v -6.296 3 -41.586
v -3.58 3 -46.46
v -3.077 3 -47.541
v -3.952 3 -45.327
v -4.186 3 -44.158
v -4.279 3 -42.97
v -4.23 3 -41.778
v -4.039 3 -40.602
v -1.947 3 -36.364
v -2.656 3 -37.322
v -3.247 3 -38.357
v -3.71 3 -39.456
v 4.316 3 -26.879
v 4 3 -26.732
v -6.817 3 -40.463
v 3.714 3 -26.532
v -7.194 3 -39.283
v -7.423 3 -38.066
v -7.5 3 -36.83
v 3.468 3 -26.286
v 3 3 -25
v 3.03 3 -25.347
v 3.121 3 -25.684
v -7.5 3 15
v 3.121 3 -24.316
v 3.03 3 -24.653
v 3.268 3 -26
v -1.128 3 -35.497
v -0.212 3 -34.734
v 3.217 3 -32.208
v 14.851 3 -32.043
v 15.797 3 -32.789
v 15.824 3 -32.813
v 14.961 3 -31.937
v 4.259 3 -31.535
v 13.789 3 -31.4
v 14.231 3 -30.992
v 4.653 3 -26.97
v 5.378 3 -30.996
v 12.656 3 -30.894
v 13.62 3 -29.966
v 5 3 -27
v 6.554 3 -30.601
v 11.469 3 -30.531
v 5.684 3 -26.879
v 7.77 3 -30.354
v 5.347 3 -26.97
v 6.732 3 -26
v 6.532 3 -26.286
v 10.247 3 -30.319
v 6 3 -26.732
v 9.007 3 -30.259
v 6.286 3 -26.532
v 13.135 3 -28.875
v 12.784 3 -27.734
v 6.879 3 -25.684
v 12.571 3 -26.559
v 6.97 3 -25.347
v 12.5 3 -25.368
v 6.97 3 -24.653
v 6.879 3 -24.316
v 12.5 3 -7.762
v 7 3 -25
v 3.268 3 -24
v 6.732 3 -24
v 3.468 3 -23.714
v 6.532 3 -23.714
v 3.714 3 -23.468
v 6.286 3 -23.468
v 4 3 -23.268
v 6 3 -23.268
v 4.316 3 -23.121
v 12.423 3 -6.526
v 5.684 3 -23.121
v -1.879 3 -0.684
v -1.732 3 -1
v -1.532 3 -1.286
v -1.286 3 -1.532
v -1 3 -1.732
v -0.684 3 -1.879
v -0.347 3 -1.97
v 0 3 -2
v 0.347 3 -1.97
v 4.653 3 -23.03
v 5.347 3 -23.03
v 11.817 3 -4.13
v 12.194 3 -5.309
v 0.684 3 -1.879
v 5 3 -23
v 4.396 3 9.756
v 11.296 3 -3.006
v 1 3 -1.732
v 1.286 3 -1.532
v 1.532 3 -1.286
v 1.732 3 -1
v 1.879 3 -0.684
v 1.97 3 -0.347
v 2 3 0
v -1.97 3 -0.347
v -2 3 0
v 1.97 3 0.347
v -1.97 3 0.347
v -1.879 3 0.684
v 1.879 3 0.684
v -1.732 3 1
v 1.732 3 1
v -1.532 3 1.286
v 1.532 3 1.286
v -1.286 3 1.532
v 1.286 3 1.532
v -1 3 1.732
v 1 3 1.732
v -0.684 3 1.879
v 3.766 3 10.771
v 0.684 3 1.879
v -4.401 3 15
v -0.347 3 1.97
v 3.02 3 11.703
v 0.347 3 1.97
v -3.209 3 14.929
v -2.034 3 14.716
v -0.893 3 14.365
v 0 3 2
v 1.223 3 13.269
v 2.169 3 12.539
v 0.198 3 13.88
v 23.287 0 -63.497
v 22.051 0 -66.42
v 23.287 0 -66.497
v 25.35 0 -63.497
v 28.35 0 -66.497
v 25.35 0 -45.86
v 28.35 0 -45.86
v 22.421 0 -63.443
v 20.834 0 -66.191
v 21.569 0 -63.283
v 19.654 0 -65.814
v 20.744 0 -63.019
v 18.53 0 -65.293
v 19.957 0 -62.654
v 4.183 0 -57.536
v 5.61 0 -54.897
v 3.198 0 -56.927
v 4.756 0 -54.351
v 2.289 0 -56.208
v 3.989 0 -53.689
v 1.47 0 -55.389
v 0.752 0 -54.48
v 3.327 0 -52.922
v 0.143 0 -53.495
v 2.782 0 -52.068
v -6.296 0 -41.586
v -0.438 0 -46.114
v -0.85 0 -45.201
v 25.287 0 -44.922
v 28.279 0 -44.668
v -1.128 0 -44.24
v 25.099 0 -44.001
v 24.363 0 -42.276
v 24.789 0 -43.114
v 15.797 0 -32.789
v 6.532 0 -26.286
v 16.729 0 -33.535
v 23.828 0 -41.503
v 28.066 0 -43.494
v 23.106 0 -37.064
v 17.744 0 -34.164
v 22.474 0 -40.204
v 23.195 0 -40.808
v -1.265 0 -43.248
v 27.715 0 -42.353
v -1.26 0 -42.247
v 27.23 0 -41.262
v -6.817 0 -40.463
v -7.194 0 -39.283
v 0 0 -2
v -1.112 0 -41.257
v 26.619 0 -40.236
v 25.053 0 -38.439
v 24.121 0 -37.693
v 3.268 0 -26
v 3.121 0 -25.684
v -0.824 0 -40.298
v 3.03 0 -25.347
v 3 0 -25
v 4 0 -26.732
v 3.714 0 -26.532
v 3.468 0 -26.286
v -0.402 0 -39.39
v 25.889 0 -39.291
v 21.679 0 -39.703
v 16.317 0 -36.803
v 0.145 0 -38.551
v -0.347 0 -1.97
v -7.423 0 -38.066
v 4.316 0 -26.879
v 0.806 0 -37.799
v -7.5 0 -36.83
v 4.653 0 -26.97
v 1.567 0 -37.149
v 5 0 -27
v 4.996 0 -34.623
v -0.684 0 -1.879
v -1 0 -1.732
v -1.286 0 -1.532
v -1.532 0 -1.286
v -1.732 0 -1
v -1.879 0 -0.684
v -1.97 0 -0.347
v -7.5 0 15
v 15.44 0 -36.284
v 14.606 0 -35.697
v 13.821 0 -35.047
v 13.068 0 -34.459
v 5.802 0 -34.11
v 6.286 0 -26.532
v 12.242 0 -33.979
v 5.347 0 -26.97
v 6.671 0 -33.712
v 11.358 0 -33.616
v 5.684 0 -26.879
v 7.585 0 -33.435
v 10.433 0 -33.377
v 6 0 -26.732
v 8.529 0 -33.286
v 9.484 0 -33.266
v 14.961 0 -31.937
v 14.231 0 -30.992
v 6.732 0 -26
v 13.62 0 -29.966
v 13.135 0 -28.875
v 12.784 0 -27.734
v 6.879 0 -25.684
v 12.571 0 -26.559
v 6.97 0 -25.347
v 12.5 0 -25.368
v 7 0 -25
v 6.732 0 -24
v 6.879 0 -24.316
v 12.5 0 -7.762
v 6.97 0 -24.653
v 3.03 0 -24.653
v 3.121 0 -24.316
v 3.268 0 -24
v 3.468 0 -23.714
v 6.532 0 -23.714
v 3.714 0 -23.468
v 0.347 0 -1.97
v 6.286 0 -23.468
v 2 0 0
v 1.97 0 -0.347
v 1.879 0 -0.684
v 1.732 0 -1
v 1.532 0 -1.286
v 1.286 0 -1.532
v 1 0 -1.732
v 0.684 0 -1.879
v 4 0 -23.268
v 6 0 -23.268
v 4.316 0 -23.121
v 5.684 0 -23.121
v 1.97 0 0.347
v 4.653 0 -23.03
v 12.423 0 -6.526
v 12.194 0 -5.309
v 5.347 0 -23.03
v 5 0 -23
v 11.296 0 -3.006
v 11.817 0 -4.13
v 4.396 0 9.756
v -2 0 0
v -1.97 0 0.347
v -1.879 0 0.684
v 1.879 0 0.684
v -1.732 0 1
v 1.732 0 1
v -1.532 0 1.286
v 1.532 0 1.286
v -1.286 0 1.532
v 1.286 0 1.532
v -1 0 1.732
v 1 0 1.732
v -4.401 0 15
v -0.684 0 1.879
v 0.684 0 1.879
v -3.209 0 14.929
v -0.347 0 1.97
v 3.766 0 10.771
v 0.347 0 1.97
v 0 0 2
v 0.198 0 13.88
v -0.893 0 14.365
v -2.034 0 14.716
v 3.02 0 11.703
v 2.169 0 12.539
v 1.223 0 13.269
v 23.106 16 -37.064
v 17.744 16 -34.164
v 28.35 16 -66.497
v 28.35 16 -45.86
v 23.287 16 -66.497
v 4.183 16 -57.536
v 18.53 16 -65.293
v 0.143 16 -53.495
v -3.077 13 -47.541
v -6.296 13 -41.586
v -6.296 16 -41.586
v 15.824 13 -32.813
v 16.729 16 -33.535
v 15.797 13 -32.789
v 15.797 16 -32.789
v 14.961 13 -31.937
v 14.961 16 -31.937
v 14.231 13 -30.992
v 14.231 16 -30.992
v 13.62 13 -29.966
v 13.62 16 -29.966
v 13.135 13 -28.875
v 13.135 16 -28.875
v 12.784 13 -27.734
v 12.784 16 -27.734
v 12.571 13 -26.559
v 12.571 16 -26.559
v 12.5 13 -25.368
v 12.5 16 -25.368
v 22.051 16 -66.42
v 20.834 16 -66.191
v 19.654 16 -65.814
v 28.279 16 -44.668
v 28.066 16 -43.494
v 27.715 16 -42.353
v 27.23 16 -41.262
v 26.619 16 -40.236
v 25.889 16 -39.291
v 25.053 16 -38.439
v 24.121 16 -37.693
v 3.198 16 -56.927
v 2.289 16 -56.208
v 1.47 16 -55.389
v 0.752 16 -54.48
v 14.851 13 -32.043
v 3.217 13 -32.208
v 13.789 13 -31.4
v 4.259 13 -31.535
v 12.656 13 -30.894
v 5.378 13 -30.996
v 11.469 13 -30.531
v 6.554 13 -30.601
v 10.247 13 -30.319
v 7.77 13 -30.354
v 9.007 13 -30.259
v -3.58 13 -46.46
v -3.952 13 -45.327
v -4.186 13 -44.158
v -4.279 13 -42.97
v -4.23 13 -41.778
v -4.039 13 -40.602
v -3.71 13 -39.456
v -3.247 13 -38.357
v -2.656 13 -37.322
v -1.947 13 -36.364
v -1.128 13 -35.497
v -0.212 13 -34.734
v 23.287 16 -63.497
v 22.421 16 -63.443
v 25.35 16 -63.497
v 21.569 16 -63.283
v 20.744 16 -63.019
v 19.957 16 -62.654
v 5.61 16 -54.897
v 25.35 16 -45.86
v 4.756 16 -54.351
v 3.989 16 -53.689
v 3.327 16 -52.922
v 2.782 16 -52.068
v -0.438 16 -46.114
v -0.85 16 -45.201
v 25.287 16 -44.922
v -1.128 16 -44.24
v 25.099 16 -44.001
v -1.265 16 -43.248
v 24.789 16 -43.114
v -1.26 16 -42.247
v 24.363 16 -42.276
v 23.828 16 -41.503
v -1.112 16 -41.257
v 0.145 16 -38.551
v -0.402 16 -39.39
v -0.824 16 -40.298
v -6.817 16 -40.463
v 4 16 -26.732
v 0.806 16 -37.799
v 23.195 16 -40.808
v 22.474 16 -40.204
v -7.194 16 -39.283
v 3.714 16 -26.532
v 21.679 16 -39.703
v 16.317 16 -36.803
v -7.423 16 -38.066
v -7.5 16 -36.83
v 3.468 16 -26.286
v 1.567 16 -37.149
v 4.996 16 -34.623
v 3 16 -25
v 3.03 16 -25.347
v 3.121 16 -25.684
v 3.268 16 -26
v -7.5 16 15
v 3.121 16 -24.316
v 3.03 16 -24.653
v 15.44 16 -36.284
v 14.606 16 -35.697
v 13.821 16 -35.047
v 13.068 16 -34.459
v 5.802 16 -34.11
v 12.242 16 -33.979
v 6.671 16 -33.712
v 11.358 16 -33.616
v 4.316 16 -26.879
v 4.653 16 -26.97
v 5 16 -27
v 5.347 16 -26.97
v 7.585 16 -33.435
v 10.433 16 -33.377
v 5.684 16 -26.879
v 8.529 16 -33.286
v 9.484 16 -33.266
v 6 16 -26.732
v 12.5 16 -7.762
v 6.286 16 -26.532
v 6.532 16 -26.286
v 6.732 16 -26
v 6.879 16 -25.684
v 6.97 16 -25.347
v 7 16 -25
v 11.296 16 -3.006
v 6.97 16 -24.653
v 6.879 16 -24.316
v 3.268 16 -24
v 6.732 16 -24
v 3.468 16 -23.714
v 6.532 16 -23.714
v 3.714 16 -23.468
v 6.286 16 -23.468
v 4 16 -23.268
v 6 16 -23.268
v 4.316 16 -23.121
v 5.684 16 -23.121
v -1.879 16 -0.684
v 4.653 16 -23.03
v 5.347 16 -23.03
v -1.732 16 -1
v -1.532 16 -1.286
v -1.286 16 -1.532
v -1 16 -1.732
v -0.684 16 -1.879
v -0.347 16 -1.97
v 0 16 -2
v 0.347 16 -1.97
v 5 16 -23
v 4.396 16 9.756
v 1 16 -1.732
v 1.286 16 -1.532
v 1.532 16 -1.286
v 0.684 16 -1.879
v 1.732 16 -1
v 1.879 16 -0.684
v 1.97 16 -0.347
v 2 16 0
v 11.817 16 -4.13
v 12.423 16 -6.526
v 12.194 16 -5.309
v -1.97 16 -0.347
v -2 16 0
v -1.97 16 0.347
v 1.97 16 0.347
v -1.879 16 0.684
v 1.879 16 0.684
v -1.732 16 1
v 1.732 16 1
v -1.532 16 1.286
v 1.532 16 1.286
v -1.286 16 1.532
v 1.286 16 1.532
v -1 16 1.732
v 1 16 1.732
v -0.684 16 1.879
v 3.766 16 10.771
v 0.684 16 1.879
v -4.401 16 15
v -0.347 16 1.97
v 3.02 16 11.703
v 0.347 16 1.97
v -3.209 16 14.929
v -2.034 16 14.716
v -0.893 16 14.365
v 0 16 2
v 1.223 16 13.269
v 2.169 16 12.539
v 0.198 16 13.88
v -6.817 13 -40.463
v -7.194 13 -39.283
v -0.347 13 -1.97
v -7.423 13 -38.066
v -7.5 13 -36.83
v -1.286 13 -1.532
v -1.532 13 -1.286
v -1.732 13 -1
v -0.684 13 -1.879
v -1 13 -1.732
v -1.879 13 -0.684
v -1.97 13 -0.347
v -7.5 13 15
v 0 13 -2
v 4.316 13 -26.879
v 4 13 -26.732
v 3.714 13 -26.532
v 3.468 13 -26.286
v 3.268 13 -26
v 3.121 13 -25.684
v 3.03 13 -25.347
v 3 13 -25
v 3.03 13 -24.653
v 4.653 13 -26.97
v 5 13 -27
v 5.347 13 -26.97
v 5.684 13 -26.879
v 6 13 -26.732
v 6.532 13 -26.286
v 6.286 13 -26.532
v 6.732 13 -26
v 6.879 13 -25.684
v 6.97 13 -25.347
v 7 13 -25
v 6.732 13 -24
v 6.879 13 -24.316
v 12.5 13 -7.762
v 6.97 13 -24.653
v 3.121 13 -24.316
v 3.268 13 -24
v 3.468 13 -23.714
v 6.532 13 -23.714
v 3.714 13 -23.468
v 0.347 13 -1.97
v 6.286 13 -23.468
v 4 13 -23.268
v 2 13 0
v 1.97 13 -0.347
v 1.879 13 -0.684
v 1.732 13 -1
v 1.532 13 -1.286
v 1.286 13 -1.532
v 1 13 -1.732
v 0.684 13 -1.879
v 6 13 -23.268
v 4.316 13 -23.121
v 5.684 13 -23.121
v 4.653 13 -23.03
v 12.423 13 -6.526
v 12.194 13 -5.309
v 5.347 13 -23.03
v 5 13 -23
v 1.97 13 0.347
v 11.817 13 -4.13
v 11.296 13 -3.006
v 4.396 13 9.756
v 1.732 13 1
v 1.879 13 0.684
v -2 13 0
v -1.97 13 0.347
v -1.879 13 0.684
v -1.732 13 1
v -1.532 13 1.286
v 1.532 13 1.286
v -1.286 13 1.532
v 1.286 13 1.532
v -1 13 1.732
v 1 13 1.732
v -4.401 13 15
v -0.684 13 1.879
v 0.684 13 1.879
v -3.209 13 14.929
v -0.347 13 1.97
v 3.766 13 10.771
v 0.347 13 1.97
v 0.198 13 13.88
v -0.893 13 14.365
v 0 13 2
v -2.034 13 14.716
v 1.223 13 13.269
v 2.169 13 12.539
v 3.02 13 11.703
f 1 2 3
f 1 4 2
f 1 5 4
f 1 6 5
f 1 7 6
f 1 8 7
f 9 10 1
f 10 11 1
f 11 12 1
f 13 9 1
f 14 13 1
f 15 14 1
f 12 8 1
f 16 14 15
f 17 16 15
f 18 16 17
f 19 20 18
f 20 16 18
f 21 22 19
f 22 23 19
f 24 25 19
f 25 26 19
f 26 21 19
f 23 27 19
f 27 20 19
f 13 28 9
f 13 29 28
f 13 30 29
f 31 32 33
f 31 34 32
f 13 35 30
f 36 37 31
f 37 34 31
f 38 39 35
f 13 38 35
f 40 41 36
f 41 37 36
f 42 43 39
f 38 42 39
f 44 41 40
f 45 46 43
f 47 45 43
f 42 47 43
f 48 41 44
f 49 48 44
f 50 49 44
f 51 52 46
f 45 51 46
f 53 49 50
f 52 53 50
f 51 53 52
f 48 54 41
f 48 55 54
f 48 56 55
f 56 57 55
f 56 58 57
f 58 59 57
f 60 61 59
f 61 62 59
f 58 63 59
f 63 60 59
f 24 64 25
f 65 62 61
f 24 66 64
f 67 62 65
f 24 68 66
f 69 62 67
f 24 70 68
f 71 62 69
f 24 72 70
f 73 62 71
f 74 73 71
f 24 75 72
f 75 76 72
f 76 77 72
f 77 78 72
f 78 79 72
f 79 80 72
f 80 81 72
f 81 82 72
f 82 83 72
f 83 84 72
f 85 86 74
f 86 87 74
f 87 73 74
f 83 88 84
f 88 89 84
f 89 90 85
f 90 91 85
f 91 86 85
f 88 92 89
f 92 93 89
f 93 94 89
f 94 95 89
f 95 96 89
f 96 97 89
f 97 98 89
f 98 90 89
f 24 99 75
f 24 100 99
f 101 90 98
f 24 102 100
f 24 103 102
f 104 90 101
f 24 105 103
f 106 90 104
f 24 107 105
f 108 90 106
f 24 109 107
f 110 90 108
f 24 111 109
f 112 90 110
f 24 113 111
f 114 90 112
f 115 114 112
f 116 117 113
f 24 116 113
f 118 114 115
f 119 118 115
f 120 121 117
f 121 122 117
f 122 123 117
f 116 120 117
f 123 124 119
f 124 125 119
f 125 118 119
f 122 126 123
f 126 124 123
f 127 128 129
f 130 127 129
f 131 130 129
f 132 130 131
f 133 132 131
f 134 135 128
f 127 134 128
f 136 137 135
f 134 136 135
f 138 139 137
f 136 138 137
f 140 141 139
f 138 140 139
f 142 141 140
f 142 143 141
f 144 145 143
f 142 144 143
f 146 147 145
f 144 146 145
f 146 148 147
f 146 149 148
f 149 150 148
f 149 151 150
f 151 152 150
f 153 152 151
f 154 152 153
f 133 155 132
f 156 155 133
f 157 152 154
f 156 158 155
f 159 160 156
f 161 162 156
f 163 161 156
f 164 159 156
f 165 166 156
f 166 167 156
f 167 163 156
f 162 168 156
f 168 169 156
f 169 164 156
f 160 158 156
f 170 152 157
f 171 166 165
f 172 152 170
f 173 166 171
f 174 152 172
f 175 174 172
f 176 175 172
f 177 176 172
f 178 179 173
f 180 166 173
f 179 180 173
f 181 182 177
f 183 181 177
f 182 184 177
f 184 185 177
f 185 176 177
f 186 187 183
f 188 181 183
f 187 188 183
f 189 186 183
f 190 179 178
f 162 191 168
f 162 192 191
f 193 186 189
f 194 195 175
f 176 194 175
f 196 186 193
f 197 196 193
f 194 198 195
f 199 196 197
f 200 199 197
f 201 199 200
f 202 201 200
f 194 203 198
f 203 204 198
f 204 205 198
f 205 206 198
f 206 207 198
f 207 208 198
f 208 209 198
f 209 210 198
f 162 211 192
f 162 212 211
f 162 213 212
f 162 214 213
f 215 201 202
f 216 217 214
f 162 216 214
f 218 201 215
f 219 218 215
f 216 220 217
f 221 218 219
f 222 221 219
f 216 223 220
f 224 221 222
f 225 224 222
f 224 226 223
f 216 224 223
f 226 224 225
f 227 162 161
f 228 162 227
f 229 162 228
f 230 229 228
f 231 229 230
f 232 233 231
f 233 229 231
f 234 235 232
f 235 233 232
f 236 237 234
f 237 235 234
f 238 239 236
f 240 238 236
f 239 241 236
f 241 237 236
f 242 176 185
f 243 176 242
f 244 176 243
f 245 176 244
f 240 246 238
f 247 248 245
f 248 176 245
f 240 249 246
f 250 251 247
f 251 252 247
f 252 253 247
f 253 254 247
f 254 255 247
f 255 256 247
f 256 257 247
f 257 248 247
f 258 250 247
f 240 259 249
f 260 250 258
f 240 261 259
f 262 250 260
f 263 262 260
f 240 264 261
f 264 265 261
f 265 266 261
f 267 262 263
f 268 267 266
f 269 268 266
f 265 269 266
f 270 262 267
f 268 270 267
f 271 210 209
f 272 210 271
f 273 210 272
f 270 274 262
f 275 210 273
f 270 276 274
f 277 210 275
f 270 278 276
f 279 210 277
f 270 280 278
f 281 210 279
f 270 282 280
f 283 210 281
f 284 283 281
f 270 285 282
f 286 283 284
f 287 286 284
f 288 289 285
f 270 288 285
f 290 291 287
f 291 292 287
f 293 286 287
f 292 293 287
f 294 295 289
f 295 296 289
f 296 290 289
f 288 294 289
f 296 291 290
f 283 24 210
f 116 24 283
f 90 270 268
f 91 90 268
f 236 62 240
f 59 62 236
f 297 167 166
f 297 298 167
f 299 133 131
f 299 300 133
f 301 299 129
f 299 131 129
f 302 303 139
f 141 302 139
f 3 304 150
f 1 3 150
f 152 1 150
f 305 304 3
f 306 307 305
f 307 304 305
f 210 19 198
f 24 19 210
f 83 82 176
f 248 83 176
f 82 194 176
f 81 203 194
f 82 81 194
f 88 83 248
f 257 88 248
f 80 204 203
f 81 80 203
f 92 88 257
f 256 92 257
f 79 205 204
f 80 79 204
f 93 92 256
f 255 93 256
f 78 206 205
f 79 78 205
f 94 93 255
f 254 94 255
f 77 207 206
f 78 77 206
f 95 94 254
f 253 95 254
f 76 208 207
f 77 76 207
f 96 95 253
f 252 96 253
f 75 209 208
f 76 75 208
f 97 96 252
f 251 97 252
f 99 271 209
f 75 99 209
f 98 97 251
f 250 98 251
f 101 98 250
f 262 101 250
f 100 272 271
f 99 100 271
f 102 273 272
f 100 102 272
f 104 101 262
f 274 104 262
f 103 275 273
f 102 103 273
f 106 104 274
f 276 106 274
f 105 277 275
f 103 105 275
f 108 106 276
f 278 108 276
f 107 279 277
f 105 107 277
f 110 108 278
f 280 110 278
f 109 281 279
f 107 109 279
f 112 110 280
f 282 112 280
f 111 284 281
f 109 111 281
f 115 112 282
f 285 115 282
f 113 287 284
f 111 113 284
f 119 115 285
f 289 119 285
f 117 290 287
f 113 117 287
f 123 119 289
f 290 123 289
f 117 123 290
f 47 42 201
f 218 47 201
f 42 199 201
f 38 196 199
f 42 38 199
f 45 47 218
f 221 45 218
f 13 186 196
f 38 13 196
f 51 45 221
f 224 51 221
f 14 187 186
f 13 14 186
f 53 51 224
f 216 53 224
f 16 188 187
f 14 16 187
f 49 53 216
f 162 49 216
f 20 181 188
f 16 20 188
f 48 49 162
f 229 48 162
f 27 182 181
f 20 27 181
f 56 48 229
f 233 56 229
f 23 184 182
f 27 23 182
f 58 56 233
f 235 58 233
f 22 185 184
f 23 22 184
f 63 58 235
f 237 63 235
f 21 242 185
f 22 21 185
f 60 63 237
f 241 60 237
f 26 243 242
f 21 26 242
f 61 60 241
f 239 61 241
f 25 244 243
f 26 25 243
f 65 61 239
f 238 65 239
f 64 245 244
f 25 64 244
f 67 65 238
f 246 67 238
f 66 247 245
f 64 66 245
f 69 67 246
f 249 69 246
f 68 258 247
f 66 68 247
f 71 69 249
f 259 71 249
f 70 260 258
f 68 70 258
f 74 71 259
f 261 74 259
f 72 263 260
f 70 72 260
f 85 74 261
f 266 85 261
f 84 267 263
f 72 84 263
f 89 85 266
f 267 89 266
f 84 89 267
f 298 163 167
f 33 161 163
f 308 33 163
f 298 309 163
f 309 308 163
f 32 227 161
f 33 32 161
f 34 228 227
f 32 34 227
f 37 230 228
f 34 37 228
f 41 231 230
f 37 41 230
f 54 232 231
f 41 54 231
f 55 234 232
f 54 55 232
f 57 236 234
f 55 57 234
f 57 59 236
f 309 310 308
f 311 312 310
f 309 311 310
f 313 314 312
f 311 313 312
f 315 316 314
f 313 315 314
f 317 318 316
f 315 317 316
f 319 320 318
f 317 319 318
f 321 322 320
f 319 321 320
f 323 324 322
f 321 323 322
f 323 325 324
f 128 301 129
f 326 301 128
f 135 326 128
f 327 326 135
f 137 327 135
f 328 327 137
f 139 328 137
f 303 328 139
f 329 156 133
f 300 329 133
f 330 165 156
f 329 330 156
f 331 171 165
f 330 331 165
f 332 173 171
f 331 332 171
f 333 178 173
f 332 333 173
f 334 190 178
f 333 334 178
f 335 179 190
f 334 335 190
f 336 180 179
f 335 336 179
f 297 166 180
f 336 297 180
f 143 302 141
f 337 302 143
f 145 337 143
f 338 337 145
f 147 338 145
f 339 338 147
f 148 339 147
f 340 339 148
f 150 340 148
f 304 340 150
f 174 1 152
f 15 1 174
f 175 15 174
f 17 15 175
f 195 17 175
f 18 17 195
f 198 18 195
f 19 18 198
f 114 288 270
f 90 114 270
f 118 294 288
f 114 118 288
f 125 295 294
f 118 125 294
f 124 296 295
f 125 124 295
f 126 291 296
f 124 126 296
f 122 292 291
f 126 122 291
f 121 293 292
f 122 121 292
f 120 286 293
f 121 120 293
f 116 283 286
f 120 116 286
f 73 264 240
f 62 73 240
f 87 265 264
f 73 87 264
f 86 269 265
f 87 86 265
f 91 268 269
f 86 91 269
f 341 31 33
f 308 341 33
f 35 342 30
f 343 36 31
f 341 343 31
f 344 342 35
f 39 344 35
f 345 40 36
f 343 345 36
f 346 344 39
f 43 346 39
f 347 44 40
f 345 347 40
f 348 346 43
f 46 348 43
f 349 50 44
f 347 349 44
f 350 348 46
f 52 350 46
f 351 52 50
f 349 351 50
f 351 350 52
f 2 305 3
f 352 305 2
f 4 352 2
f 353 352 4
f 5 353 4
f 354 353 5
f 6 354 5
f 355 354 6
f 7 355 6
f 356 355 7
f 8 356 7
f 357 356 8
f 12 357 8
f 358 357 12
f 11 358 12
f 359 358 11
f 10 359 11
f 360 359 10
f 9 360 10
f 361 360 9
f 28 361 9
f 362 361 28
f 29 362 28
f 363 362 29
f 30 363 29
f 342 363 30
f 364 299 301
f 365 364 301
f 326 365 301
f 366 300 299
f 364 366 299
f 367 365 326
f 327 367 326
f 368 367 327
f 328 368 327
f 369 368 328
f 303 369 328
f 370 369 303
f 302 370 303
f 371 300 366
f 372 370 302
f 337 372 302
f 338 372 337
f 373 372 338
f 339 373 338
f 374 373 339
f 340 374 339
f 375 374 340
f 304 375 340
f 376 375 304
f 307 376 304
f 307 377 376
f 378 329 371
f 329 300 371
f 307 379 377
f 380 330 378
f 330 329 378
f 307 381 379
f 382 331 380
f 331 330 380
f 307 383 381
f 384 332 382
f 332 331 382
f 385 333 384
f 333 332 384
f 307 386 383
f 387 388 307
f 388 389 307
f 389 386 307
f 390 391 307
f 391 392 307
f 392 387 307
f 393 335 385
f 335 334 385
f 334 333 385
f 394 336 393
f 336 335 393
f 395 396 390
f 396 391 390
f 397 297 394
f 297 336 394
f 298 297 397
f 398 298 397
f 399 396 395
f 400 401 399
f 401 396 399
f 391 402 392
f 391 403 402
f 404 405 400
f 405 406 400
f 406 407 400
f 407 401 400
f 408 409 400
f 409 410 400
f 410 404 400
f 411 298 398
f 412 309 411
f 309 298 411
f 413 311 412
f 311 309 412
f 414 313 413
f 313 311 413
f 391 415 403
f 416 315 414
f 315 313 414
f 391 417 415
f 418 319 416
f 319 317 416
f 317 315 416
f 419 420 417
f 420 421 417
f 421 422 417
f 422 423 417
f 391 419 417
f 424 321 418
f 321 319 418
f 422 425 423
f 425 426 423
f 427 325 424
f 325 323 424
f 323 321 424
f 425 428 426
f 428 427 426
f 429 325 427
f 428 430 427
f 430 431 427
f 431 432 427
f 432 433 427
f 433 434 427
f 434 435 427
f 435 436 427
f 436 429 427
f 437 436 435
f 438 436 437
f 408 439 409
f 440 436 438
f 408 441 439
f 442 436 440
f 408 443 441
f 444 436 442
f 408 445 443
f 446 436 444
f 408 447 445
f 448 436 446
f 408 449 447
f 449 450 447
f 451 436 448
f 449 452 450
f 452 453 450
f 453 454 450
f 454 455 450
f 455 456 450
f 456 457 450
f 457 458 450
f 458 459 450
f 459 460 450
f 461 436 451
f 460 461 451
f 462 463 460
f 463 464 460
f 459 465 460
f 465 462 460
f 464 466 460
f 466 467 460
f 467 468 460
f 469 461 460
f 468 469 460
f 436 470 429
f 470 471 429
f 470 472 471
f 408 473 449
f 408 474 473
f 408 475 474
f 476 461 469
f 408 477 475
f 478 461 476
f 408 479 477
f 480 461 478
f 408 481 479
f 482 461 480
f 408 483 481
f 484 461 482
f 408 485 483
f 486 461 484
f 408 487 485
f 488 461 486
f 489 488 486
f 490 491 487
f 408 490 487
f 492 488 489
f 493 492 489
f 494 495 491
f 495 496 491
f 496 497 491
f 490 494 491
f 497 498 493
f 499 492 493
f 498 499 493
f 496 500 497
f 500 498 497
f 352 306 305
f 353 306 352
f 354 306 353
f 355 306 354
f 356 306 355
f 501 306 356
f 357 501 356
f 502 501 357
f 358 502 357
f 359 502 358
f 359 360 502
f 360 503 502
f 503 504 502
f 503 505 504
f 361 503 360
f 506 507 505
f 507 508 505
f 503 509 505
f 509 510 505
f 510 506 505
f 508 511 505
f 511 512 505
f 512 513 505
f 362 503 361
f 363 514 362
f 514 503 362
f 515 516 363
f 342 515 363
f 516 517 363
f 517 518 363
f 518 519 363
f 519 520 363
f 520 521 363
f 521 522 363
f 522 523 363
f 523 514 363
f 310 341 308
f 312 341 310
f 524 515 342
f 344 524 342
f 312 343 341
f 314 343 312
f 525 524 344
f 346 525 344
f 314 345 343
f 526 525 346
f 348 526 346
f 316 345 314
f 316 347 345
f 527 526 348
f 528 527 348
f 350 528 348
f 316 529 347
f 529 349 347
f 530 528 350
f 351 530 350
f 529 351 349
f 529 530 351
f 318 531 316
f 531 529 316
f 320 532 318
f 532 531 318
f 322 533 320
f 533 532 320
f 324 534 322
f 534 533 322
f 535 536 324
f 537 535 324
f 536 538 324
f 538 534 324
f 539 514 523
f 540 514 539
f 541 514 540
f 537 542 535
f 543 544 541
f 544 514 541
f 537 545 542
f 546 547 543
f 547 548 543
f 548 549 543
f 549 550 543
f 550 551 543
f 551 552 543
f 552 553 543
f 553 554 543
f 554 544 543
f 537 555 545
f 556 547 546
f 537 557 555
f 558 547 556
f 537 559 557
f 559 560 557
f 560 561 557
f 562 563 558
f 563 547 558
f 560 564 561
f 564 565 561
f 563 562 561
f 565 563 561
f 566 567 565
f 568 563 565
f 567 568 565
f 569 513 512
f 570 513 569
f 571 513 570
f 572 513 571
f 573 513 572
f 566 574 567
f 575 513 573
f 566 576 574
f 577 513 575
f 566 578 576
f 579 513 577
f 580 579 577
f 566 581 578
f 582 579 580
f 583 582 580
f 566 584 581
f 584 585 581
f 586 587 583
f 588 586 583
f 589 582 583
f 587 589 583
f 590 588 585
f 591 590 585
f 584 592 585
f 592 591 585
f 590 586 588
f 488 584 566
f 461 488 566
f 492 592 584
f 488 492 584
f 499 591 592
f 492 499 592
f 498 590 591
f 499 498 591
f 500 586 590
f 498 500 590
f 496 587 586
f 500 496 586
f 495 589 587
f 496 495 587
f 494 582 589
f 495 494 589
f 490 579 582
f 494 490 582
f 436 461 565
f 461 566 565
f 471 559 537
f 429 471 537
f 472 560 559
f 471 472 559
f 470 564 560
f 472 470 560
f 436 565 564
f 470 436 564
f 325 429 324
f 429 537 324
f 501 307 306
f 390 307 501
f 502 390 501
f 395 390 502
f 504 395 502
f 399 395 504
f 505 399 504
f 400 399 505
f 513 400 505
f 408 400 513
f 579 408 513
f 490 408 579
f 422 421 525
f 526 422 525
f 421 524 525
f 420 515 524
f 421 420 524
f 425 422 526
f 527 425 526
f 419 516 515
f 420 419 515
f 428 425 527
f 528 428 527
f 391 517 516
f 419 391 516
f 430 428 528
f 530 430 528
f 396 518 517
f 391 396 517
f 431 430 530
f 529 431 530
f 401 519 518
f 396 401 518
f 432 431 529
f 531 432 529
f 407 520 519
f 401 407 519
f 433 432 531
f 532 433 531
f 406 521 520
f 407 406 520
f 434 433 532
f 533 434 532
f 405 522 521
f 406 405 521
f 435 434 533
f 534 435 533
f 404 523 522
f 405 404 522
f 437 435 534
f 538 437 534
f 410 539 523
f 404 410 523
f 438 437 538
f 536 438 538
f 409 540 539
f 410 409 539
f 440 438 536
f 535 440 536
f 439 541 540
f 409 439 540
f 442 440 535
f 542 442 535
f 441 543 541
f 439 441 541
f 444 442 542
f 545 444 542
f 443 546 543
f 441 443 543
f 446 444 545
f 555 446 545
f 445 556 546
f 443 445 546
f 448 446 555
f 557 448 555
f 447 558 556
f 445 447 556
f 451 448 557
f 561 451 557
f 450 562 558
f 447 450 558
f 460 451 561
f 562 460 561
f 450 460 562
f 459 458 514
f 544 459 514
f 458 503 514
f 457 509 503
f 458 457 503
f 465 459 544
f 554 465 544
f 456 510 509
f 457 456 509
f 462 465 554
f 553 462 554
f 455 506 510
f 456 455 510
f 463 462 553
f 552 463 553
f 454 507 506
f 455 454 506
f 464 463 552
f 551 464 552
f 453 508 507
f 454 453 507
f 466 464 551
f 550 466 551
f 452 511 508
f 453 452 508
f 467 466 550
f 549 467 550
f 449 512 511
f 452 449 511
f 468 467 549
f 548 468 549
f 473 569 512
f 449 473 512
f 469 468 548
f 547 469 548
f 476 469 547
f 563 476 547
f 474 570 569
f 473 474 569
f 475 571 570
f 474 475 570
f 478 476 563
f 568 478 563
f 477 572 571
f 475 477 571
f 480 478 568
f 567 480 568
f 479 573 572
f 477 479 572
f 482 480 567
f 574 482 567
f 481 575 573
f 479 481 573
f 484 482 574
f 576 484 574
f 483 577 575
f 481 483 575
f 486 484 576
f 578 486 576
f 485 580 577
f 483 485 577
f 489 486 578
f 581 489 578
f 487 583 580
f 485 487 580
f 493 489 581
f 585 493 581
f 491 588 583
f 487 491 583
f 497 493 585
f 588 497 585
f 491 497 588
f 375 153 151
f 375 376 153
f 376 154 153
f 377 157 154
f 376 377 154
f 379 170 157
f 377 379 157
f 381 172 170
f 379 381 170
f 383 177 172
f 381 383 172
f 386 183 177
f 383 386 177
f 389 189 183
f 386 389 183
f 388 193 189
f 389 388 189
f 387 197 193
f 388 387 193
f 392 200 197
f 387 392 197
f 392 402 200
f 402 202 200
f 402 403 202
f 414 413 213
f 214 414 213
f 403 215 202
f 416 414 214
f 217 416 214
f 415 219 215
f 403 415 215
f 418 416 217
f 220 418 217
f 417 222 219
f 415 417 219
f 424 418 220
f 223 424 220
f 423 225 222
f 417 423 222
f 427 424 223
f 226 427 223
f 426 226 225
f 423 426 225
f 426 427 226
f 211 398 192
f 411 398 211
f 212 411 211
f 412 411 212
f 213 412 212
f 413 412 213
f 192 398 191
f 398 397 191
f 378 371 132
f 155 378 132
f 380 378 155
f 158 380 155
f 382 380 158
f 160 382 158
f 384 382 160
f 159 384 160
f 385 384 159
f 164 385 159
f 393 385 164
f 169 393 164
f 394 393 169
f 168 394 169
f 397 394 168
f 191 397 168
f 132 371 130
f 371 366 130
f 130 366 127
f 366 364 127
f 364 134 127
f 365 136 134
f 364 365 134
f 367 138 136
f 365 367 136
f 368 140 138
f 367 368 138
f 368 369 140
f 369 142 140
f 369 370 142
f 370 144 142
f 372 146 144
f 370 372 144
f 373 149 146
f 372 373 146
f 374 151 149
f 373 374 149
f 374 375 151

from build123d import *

# Parameters (mm, degrees)
SKETCH1_R           = 2
BOSS_EXTRUDE1_DEPTH = 3
FILLET1_R           = 10
BOSS_EXTRUDE2_DEPTH = 10
BOSS_EXTRUDE3_START = 10
SKETCH2_3_R         = 2
BOSS_EXTRUDE3_DEPTH = 3
CUT_EXTRUDE1_DEPTH  = 74.447466489


with BuildPart() as part:
    # Sketch1 → Boss-Extrude1 (new body)
    with BuildSketch(Plane(origin=(0, 0, 0), x_dir=(1, 0, 0), z_dir=(0, 1, 0))):
        Polygon((1.560538705, -15), (12.5, 5.232110419), (12.5, 31.328870119), (28.35, 39.898933149), (28.35, 66.496675358), (20.756215513, 66.496675358), (1.560538705, 56.117611626), (-7.5, 39.360495841), (-7.5, -15), align=None)
        with Locations(Location((0, 0, 0), (0, 0, 270))):
            Circle(SKETCH1_R, mode=Mode.SUBTRACT)
        with Locations(Location((5, 25, 0), (0, 0, 270))):
            Circle(SKETCH1_R, mode=Mode.SUBTRACT)
    extrude(amount=BOSS_EXTRUDE1_DEPTH)

    # Fillet1
    fillet1_edges = [part.edges().sort_by_distance(p)[0] for p in [
        (-7.5, 1.5, -39.360495841),
        (1.560538705, 1.5, -56.117611626),
        (20.756215513, 1.5, -66.496675358),
        (28.35, 1.5, -39.898933149),
        (12.5, 1.5, -31.328870119),
        (12.5, 1.5, -5.232110419),
        (1.560538705, 1.5, 15),
    ]]
    fillet(fillet1_edges, radius=FILLET1_R)

    # Sketch2 → Boss-Extrude2 (add)
    with BuildSketch(Plane(origin=(0, 3, 0), x_dir=(1, 0, 0), z_dir=(0, 1, 0))):
        with BuildLine():
            Line((-0.212131961, 34.733789396), (3.216589734, 32.20755665))
            ThreePointArc((3.216589734, 32.20755665), (9.62795757, 30.269843196), (15.824142619, 32.813003004))
            ThreePointArc((15.824142619, 32.813003004), (16.744165524, 33.545104209), (17.743757909, 34.164159444))
            Line((17.743757909, 34.164159444), (23.106242091, 37.063643824))
            ThreePointArc((23.106242091, 37.063643824), (26.939598969, 40.739700904), (28.35, 45.860129553))
            Line((28.35, 45.860129553), (28.35, 66.496675358))
            Line((28.35, 66.496675358), (23.286604522, 66.496675358))
            ThreePointArc((23.286604522, 66.496675358), (20.833530664, 66.191128856), (18.530362432, 65.293161086))
            Line((18.530362432, 65.293161086), (4.182884994, 57.535508975))
            ThreePointArc((4.182884994, 57.535508975), (1.868059273, 55.810091058), (0.142641356, 53.495265337))
            Line((0.142641356, 53.495265337), (-3.076922186, 47.54080713))
            ThreePointArc((-3.076922186, 47.54080713), (-4.039266122, 40.601621249), (-0.212131961, 34.733789396))
        make_face()
        with BuildLine():
            Line((1.56737669, 37.149022089), (4.996098385, 34.622789343))
            ThreePointArc((4.996098385, 34.622789343), (9.48405587, 33.266389925), (13.821385404, 35.046601791))
            ThreePointArc((13.821385404, 35.046601791), (15.017415181, 35.998333357), (16.316885282, 36.803105162))
            Line((16.316885282, 36.803105162), (21.679369463, 39.702589543))
            ThreePointArc((21.679369463, 39.702589543), (24.362719279, 42.275829499), (25.35, 45.860129553))
            Line((25.35, 45.860129553), (25.35, 63.496675358))
            Line((25.35, 63.496675358), (23.286604522, 63.496675358))
            ThreePointArc((23.286604522, 63.496675358), (21.569452821, 63.282792807), (19.957235059, 62.654215368))
            Line((19.957235059, 62.654215368), (5.609757621, 54.896563256))
            ThreePointArc((5.609757621, 54.896563256), (3.989379616, 53.688770715), (2.781587075, 52.06839271))
            Line((2.781587075, 52.06839271), (-0.437976468, 46.113934502))
            ThreePointArc((-0.437976468, 46.113934502), (-1.111617222, 41.256504386), (1.56737669, 37.149022089))
        make_face(mode=Mode.SUBTRACT)
    extrude(amount=BOSS_EXTRUDE2_DEPTH)

    # Sketch2<3> → Boss-Extrude3 (add)
    with BuildSketch(Plane(origin=(0, 3, 0), x_dir=(1, 0, 0), z_dir=(0, 1, 0)).offset(BOSS_EXTRUDE3_START)):
        with BuildLine():
            ThreePointArc((-3.076922186, 47.54080713), (-4.039266122, 40.601621249), (-0.212131961, 34.733789396))
            Line((-0.212131961, 34.733789396), (3.216589734, 32.20755665))
            ThreePointArc((3.216589734, 32.20755665), (9.62795757, 30.269843196), (15.824142619, 32.813003004))
            ThreePointArc((15.824142619, 32.813003004), (16.744165524, 33.545104209), (17.743757909, 34.164159444))
            Line((17.743757909, 34.164159444), (23.106242091, 37.063643824))
            ThreePointArc((23.106242091, 37.063643824), (26.939598969, 40.739700904), (28.35, 45.860129553))
            Line((28.35, 45.860129553), (28.35, 66.496675358))
            Line((28.35, 66.496675358), (23.286604522, 66.496675358))
            ThreePointArc((23.286604522, 66.496675358), (20.833530664, 66.191128856), (18.530362432, 65.293161086))
            Line((18.530362432, 65.293161086), (4.182884994, 57.535508975))
            ThreePointArc((4.182884994, 57.535508975), (1.868059273, 55.810091058), (0.142641356, 53.495265337))
            Line((0.142641356, 53.495265337), (-3.076922186, 47.54080713))
        make_face()
        with BuildLine():
            Line((4.996098385, 34.622789343), (1.56737669, 37.149022089))
            ThreePointArc((1.56737669, 37.149022089), (-1.111617222, 41.256504386), (-0.437976468, 46.113934502))
            Line((-0.437976468, 46.113934502), (2.781587075, 52.06839271))
            ThreePointArc((2.781587075, 52.06839271), (3.989379616, 53.688770715), (5.609757621, 54.896563256))
            Line((5.609757621, 54.896563256), (19.957235059, 62.654215368))
            ThreePointArc((19.957235059, 62.654215368), (21.569452821, 63.282792807), (23.286604522, 63.496675358))
            Line((23.286604522, 63.496675358), (25.35, 63.496675358))
            Line((25.35, 63.496675358), (25.35, 45.860129553))
            ThreePointArc((25.35, 45.860129553), (24.362719279, 42.275829499), (21.679369463, 39.702589543))
            Line((21.679369463, 39.702589543), (16.316885282, 36.803105162))
            ThreePointArc((16.316885282, 36.803105162), (15.017415181, 35.998333357), (13.821385404, 35.046601791))
            ThreePointArc((13.821385404, 35.046601791), (9.48405587, 33.266389925), (4.996098385, 34.622789343))
        make_face(mode=Mode.SUBTRACT)
        with BuildLine():
            Line((3.216589734, 32.20755665), (-0.212131961, 34.733789396))
            ThreePointArc((-0.212131961, 34.733789396), (-4.039266122, 40.601621249), (-3.076922186, 47.54080713))
            Line((-3.076922186, 47.54080713), (-6.296485729, 41.586348922))
            ThreePointArc((-6.296485729, 41.586348922), (-7.194453499, 39.28318069), (-7.5, 36.830106832))
            Line((-7.5, 36.830106832), (-7.5, -15))
            Line((-7.5, -15), (-4.400657699, -15))
            ThreePointArc((-4.400657699, -15), (0.71977095, -13.589598969), (4.39582803, -9.756242091))
            Line((4.39582803, -9.756242091), (11.296485729, 3.006257338))
            ThreePointArc((11.296485729, 3.006257338), (12.194453499, 5.30942557), (12.5, 7.762499429))
            Line((12.5, 7.762499429), (12.5, 25.367673715))
            ThreePointArc((12.5, 25.367673715), (13.368774074, 29.444524594), (15.824142619, 32.813003004))
            ThreePointArc((15.824142619, 32.813003004), (9.62795757, 30.269843196), (3.216589734, 32.20755665))
        make_face()
        with Locations(Location((0, 0, 0), (0, 0, 270))):
            Circle(SKETCH2_3_R, mode=Mode.SUBTRACT)
        with Locations(Location((5, 25, 0), (0, 0, 270))):
            Circle(SKETCH2_3_R, mode=Mode.SUBTRACT)
    extrude(amount=BOSS_EXTRUDE3_DEPTH)

    # Sketch4 → Cut-Extrude1 (cut, through all)
    with BuildSketch(Plane(origin=(0, 3, 0), x_dir=(1, 0, 0), z_dir=(0, 1, 0))):
        with BuildLine():
            Line((19.957235059, 62.654215368), (5.609757621, 54.896563256))
            ThreePointArc((5.609757621, 54.896563256), (3.989379616, 53.688770715), (2.781587075, 52.06839271))
            Line((2.781587075, 52.06839271), (-0.437976468, 46.113934502))
            ThreePointArc((-0.437976468, 46.113934502), (-1.111617222, 41.256504386), (1.56737669, 37.149022089))
            Line((1.56737669, 37.149022089), (4.996098385, 34.622789343))
            ThreePointArc((4.996098385, 34.622789343), (9.48405587, 33.266389925), (13.821385404, 35.046601791))
            ThreePointArc((13.821385404, 35.046601791), (15.017415181, 35.998333357), (16.316885282, 36.803105162))
            Line((16.316885282, 36.803105162), (21.679369463, 39.702589543))
            ThreePointArc((21.679369463, 39.702589543), (24.362719279, 42.275829499), (25.35, 45.860129553))
            Line((25.35, 45.860129553), (25.35, 63.496675358))
            Line((25.35, 63.496675358), (23.286604522, 63.496675358))
            ThreePointArc((23.286604522, 63.496675358), (21.569452821, 63.282792807), (19.957235059, 62.654215368))
        make_face()
    extrude(amount=-CUT_EXTRUDE1_DEPTH, mode=Mode.SUBTRACT)


solid = part.part
